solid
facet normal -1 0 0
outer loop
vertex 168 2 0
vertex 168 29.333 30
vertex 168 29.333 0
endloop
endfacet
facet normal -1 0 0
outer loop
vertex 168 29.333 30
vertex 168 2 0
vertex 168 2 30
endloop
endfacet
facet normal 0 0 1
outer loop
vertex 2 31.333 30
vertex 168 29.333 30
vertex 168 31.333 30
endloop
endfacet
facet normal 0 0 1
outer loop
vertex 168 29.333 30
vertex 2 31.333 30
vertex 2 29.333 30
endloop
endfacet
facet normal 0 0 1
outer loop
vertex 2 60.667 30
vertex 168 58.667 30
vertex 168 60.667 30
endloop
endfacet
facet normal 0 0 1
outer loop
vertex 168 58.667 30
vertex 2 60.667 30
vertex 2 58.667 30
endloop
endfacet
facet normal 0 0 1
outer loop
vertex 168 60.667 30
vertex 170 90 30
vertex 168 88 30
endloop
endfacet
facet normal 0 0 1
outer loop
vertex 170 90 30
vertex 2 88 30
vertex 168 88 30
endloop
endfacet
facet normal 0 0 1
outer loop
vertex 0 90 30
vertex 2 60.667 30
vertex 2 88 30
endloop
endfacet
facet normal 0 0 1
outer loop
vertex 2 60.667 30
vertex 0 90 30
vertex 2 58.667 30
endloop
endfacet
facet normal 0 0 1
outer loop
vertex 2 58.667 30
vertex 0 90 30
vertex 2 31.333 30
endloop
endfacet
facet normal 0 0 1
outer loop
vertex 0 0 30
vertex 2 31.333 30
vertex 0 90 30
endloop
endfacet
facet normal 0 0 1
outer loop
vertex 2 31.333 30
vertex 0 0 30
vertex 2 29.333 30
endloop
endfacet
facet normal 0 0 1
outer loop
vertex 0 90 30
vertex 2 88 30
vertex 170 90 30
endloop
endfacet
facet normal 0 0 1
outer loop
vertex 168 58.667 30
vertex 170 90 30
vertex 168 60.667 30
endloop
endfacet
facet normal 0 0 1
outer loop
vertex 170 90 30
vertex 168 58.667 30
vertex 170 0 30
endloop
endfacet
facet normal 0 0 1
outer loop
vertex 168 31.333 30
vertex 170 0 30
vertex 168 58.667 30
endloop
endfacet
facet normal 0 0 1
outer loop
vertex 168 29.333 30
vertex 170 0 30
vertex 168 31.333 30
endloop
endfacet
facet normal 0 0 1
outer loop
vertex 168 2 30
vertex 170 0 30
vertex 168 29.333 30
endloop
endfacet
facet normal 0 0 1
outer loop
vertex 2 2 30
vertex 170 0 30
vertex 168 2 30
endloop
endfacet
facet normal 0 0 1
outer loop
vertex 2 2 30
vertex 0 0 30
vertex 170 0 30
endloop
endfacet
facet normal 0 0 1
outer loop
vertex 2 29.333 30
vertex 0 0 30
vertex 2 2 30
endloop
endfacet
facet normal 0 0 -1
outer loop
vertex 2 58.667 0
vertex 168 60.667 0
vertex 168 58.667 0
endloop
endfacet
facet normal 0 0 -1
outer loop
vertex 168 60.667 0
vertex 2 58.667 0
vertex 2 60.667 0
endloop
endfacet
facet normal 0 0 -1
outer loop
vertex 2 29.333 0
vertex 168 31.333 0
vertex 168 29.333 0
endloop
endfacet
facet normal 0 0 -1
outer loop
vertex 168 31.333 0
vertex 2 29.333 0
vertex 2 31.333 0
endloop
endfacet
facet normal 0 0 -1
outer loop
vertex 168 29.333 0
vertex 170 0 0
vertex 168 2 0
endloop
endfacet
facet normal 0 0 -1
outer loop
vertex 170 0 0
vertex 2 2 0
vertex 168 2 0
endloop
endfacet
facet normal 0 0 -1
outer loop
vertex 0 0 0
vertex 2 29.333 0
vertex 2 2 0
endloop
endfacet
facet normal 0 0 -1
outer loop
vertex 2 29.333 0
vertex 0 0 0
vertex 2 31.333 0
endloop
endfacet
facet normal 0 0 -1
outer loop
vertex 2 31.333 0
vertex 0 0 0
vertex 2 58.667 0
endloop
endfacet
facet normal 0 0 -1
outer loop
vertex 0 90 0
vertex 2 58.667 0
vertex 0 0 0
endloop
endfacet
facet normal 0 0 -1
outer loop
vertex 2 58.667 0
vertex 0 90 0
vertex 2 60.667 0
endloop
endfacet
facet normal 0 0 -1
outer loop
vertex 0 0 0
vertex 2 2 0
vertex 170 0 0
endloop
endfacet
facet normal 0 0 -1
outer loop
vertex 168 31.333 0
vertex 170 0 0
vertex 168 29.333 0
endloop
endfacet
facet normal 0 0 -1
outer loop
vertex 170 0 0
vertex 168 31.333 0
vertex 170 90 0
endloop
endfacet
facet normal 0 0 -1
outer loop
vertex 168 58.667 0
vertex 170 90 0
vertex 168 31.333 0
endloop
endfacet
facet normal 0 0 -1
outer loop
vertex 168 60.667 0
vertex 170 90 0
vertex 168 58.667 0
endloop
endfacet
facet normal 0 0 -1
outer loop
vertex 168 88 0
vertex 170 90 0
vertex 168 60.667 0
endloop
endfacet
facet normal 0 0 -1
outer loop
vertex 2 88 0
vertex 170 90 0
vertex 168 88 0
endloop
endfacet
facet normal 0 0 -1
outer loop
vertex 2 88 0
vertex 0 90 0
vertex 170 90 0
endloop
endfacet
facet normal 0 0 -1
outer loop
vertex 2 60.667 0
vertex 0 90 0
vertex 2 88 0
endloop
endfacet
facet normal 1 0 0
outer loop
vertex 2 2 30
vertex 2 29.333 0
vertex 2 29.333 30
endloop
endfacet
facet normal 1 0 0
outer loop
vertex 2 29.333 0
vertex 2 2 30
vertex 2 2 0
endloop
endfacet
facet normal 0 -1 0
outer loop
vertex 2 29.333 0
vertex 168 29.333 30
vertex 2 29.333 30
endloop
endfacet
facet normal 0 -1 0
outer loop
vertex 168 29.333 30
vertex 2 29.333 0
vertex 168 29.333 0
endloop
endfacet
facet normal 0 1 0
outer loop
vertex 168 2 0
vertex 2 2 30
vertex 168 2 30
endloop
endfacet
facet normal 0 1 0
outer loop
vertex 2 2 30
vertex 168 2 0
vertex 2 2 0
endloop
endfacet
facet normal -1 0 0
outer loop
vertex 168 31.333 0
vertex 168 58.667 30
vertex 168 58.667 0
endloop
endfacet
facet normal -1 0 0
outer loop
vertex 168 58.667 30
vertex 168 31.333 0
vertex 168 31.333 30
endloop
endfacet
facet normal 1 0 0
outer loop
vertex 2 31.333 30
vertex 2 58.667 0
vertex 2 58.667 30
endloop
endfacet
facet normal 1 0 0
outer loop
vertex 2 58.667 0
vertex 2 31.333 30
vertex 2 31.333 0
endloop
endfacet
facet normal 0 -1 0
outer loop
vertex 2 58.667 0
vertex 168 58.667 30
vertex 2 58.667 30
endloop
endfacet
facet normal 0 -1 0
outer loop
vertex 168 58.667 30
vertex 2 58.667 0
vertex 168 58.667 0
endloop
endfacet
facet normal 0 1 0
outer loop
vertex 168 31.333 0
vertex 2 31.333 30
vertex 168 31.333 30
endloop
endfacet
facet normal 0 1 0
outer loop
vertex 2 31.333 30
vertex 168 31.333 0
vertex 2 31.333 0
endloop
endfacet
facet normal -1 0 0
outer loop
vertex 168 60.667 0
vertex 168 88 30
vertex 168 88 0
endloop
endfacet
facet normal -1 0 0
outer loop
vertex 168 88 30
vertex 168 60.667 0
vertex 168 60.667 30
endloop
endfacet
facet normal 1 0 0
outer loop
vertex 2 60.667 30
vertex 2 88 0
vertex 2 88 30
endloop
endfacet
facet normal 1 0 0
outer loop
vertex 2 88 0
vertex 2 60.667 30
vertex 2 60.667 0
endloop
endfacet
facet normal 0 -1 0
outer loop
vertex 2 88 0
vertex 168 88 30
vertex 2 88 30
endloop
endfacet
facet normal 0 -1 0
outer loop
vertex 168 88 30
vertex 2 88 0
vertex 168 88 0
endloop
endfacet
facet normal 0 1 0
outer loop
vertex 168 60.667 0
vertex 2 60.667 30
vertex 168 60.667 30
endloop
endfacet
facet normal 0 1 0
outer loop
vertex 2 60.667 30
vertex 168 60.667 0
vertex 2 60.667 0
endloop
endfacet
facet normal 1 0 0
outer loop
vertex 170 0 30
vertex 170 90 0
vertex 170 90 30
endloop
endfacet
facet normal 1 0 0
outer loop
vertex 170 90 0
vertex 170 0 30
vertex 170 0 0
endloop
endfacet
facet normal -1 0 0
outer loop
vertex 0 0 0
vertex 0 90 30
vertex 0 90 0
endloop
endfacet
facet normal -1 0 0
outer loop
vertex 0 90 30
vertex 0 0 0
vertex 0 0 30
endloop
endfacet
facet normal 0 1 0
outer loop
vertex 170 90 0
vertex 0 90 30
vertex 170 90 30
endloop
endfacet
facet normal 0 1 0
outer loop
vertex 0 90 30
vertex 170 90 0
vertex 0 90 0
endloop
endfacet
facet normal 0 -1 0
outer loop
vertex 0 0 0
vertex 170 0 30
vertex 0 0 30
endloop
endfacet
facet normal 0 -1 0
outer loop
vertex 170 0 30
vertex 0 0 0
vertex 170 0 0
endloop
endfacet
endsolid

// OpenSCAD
WIDTH = 170;
DEPTH = 90;
HEIGHT = 30;
WALL=2;

N=3;

dy=(DEPTH-(WALL*(N+1)))/N;

difference() {
    cube([WIDTH, DEPTH, HEIGHT]);
    for (i = [0:N-1]) {
        #translate([WALL,WALL+i*(dy+WALL),0]) cube([WIDTH-2*WALL,dy,HEIGHT]);
    }   
}
